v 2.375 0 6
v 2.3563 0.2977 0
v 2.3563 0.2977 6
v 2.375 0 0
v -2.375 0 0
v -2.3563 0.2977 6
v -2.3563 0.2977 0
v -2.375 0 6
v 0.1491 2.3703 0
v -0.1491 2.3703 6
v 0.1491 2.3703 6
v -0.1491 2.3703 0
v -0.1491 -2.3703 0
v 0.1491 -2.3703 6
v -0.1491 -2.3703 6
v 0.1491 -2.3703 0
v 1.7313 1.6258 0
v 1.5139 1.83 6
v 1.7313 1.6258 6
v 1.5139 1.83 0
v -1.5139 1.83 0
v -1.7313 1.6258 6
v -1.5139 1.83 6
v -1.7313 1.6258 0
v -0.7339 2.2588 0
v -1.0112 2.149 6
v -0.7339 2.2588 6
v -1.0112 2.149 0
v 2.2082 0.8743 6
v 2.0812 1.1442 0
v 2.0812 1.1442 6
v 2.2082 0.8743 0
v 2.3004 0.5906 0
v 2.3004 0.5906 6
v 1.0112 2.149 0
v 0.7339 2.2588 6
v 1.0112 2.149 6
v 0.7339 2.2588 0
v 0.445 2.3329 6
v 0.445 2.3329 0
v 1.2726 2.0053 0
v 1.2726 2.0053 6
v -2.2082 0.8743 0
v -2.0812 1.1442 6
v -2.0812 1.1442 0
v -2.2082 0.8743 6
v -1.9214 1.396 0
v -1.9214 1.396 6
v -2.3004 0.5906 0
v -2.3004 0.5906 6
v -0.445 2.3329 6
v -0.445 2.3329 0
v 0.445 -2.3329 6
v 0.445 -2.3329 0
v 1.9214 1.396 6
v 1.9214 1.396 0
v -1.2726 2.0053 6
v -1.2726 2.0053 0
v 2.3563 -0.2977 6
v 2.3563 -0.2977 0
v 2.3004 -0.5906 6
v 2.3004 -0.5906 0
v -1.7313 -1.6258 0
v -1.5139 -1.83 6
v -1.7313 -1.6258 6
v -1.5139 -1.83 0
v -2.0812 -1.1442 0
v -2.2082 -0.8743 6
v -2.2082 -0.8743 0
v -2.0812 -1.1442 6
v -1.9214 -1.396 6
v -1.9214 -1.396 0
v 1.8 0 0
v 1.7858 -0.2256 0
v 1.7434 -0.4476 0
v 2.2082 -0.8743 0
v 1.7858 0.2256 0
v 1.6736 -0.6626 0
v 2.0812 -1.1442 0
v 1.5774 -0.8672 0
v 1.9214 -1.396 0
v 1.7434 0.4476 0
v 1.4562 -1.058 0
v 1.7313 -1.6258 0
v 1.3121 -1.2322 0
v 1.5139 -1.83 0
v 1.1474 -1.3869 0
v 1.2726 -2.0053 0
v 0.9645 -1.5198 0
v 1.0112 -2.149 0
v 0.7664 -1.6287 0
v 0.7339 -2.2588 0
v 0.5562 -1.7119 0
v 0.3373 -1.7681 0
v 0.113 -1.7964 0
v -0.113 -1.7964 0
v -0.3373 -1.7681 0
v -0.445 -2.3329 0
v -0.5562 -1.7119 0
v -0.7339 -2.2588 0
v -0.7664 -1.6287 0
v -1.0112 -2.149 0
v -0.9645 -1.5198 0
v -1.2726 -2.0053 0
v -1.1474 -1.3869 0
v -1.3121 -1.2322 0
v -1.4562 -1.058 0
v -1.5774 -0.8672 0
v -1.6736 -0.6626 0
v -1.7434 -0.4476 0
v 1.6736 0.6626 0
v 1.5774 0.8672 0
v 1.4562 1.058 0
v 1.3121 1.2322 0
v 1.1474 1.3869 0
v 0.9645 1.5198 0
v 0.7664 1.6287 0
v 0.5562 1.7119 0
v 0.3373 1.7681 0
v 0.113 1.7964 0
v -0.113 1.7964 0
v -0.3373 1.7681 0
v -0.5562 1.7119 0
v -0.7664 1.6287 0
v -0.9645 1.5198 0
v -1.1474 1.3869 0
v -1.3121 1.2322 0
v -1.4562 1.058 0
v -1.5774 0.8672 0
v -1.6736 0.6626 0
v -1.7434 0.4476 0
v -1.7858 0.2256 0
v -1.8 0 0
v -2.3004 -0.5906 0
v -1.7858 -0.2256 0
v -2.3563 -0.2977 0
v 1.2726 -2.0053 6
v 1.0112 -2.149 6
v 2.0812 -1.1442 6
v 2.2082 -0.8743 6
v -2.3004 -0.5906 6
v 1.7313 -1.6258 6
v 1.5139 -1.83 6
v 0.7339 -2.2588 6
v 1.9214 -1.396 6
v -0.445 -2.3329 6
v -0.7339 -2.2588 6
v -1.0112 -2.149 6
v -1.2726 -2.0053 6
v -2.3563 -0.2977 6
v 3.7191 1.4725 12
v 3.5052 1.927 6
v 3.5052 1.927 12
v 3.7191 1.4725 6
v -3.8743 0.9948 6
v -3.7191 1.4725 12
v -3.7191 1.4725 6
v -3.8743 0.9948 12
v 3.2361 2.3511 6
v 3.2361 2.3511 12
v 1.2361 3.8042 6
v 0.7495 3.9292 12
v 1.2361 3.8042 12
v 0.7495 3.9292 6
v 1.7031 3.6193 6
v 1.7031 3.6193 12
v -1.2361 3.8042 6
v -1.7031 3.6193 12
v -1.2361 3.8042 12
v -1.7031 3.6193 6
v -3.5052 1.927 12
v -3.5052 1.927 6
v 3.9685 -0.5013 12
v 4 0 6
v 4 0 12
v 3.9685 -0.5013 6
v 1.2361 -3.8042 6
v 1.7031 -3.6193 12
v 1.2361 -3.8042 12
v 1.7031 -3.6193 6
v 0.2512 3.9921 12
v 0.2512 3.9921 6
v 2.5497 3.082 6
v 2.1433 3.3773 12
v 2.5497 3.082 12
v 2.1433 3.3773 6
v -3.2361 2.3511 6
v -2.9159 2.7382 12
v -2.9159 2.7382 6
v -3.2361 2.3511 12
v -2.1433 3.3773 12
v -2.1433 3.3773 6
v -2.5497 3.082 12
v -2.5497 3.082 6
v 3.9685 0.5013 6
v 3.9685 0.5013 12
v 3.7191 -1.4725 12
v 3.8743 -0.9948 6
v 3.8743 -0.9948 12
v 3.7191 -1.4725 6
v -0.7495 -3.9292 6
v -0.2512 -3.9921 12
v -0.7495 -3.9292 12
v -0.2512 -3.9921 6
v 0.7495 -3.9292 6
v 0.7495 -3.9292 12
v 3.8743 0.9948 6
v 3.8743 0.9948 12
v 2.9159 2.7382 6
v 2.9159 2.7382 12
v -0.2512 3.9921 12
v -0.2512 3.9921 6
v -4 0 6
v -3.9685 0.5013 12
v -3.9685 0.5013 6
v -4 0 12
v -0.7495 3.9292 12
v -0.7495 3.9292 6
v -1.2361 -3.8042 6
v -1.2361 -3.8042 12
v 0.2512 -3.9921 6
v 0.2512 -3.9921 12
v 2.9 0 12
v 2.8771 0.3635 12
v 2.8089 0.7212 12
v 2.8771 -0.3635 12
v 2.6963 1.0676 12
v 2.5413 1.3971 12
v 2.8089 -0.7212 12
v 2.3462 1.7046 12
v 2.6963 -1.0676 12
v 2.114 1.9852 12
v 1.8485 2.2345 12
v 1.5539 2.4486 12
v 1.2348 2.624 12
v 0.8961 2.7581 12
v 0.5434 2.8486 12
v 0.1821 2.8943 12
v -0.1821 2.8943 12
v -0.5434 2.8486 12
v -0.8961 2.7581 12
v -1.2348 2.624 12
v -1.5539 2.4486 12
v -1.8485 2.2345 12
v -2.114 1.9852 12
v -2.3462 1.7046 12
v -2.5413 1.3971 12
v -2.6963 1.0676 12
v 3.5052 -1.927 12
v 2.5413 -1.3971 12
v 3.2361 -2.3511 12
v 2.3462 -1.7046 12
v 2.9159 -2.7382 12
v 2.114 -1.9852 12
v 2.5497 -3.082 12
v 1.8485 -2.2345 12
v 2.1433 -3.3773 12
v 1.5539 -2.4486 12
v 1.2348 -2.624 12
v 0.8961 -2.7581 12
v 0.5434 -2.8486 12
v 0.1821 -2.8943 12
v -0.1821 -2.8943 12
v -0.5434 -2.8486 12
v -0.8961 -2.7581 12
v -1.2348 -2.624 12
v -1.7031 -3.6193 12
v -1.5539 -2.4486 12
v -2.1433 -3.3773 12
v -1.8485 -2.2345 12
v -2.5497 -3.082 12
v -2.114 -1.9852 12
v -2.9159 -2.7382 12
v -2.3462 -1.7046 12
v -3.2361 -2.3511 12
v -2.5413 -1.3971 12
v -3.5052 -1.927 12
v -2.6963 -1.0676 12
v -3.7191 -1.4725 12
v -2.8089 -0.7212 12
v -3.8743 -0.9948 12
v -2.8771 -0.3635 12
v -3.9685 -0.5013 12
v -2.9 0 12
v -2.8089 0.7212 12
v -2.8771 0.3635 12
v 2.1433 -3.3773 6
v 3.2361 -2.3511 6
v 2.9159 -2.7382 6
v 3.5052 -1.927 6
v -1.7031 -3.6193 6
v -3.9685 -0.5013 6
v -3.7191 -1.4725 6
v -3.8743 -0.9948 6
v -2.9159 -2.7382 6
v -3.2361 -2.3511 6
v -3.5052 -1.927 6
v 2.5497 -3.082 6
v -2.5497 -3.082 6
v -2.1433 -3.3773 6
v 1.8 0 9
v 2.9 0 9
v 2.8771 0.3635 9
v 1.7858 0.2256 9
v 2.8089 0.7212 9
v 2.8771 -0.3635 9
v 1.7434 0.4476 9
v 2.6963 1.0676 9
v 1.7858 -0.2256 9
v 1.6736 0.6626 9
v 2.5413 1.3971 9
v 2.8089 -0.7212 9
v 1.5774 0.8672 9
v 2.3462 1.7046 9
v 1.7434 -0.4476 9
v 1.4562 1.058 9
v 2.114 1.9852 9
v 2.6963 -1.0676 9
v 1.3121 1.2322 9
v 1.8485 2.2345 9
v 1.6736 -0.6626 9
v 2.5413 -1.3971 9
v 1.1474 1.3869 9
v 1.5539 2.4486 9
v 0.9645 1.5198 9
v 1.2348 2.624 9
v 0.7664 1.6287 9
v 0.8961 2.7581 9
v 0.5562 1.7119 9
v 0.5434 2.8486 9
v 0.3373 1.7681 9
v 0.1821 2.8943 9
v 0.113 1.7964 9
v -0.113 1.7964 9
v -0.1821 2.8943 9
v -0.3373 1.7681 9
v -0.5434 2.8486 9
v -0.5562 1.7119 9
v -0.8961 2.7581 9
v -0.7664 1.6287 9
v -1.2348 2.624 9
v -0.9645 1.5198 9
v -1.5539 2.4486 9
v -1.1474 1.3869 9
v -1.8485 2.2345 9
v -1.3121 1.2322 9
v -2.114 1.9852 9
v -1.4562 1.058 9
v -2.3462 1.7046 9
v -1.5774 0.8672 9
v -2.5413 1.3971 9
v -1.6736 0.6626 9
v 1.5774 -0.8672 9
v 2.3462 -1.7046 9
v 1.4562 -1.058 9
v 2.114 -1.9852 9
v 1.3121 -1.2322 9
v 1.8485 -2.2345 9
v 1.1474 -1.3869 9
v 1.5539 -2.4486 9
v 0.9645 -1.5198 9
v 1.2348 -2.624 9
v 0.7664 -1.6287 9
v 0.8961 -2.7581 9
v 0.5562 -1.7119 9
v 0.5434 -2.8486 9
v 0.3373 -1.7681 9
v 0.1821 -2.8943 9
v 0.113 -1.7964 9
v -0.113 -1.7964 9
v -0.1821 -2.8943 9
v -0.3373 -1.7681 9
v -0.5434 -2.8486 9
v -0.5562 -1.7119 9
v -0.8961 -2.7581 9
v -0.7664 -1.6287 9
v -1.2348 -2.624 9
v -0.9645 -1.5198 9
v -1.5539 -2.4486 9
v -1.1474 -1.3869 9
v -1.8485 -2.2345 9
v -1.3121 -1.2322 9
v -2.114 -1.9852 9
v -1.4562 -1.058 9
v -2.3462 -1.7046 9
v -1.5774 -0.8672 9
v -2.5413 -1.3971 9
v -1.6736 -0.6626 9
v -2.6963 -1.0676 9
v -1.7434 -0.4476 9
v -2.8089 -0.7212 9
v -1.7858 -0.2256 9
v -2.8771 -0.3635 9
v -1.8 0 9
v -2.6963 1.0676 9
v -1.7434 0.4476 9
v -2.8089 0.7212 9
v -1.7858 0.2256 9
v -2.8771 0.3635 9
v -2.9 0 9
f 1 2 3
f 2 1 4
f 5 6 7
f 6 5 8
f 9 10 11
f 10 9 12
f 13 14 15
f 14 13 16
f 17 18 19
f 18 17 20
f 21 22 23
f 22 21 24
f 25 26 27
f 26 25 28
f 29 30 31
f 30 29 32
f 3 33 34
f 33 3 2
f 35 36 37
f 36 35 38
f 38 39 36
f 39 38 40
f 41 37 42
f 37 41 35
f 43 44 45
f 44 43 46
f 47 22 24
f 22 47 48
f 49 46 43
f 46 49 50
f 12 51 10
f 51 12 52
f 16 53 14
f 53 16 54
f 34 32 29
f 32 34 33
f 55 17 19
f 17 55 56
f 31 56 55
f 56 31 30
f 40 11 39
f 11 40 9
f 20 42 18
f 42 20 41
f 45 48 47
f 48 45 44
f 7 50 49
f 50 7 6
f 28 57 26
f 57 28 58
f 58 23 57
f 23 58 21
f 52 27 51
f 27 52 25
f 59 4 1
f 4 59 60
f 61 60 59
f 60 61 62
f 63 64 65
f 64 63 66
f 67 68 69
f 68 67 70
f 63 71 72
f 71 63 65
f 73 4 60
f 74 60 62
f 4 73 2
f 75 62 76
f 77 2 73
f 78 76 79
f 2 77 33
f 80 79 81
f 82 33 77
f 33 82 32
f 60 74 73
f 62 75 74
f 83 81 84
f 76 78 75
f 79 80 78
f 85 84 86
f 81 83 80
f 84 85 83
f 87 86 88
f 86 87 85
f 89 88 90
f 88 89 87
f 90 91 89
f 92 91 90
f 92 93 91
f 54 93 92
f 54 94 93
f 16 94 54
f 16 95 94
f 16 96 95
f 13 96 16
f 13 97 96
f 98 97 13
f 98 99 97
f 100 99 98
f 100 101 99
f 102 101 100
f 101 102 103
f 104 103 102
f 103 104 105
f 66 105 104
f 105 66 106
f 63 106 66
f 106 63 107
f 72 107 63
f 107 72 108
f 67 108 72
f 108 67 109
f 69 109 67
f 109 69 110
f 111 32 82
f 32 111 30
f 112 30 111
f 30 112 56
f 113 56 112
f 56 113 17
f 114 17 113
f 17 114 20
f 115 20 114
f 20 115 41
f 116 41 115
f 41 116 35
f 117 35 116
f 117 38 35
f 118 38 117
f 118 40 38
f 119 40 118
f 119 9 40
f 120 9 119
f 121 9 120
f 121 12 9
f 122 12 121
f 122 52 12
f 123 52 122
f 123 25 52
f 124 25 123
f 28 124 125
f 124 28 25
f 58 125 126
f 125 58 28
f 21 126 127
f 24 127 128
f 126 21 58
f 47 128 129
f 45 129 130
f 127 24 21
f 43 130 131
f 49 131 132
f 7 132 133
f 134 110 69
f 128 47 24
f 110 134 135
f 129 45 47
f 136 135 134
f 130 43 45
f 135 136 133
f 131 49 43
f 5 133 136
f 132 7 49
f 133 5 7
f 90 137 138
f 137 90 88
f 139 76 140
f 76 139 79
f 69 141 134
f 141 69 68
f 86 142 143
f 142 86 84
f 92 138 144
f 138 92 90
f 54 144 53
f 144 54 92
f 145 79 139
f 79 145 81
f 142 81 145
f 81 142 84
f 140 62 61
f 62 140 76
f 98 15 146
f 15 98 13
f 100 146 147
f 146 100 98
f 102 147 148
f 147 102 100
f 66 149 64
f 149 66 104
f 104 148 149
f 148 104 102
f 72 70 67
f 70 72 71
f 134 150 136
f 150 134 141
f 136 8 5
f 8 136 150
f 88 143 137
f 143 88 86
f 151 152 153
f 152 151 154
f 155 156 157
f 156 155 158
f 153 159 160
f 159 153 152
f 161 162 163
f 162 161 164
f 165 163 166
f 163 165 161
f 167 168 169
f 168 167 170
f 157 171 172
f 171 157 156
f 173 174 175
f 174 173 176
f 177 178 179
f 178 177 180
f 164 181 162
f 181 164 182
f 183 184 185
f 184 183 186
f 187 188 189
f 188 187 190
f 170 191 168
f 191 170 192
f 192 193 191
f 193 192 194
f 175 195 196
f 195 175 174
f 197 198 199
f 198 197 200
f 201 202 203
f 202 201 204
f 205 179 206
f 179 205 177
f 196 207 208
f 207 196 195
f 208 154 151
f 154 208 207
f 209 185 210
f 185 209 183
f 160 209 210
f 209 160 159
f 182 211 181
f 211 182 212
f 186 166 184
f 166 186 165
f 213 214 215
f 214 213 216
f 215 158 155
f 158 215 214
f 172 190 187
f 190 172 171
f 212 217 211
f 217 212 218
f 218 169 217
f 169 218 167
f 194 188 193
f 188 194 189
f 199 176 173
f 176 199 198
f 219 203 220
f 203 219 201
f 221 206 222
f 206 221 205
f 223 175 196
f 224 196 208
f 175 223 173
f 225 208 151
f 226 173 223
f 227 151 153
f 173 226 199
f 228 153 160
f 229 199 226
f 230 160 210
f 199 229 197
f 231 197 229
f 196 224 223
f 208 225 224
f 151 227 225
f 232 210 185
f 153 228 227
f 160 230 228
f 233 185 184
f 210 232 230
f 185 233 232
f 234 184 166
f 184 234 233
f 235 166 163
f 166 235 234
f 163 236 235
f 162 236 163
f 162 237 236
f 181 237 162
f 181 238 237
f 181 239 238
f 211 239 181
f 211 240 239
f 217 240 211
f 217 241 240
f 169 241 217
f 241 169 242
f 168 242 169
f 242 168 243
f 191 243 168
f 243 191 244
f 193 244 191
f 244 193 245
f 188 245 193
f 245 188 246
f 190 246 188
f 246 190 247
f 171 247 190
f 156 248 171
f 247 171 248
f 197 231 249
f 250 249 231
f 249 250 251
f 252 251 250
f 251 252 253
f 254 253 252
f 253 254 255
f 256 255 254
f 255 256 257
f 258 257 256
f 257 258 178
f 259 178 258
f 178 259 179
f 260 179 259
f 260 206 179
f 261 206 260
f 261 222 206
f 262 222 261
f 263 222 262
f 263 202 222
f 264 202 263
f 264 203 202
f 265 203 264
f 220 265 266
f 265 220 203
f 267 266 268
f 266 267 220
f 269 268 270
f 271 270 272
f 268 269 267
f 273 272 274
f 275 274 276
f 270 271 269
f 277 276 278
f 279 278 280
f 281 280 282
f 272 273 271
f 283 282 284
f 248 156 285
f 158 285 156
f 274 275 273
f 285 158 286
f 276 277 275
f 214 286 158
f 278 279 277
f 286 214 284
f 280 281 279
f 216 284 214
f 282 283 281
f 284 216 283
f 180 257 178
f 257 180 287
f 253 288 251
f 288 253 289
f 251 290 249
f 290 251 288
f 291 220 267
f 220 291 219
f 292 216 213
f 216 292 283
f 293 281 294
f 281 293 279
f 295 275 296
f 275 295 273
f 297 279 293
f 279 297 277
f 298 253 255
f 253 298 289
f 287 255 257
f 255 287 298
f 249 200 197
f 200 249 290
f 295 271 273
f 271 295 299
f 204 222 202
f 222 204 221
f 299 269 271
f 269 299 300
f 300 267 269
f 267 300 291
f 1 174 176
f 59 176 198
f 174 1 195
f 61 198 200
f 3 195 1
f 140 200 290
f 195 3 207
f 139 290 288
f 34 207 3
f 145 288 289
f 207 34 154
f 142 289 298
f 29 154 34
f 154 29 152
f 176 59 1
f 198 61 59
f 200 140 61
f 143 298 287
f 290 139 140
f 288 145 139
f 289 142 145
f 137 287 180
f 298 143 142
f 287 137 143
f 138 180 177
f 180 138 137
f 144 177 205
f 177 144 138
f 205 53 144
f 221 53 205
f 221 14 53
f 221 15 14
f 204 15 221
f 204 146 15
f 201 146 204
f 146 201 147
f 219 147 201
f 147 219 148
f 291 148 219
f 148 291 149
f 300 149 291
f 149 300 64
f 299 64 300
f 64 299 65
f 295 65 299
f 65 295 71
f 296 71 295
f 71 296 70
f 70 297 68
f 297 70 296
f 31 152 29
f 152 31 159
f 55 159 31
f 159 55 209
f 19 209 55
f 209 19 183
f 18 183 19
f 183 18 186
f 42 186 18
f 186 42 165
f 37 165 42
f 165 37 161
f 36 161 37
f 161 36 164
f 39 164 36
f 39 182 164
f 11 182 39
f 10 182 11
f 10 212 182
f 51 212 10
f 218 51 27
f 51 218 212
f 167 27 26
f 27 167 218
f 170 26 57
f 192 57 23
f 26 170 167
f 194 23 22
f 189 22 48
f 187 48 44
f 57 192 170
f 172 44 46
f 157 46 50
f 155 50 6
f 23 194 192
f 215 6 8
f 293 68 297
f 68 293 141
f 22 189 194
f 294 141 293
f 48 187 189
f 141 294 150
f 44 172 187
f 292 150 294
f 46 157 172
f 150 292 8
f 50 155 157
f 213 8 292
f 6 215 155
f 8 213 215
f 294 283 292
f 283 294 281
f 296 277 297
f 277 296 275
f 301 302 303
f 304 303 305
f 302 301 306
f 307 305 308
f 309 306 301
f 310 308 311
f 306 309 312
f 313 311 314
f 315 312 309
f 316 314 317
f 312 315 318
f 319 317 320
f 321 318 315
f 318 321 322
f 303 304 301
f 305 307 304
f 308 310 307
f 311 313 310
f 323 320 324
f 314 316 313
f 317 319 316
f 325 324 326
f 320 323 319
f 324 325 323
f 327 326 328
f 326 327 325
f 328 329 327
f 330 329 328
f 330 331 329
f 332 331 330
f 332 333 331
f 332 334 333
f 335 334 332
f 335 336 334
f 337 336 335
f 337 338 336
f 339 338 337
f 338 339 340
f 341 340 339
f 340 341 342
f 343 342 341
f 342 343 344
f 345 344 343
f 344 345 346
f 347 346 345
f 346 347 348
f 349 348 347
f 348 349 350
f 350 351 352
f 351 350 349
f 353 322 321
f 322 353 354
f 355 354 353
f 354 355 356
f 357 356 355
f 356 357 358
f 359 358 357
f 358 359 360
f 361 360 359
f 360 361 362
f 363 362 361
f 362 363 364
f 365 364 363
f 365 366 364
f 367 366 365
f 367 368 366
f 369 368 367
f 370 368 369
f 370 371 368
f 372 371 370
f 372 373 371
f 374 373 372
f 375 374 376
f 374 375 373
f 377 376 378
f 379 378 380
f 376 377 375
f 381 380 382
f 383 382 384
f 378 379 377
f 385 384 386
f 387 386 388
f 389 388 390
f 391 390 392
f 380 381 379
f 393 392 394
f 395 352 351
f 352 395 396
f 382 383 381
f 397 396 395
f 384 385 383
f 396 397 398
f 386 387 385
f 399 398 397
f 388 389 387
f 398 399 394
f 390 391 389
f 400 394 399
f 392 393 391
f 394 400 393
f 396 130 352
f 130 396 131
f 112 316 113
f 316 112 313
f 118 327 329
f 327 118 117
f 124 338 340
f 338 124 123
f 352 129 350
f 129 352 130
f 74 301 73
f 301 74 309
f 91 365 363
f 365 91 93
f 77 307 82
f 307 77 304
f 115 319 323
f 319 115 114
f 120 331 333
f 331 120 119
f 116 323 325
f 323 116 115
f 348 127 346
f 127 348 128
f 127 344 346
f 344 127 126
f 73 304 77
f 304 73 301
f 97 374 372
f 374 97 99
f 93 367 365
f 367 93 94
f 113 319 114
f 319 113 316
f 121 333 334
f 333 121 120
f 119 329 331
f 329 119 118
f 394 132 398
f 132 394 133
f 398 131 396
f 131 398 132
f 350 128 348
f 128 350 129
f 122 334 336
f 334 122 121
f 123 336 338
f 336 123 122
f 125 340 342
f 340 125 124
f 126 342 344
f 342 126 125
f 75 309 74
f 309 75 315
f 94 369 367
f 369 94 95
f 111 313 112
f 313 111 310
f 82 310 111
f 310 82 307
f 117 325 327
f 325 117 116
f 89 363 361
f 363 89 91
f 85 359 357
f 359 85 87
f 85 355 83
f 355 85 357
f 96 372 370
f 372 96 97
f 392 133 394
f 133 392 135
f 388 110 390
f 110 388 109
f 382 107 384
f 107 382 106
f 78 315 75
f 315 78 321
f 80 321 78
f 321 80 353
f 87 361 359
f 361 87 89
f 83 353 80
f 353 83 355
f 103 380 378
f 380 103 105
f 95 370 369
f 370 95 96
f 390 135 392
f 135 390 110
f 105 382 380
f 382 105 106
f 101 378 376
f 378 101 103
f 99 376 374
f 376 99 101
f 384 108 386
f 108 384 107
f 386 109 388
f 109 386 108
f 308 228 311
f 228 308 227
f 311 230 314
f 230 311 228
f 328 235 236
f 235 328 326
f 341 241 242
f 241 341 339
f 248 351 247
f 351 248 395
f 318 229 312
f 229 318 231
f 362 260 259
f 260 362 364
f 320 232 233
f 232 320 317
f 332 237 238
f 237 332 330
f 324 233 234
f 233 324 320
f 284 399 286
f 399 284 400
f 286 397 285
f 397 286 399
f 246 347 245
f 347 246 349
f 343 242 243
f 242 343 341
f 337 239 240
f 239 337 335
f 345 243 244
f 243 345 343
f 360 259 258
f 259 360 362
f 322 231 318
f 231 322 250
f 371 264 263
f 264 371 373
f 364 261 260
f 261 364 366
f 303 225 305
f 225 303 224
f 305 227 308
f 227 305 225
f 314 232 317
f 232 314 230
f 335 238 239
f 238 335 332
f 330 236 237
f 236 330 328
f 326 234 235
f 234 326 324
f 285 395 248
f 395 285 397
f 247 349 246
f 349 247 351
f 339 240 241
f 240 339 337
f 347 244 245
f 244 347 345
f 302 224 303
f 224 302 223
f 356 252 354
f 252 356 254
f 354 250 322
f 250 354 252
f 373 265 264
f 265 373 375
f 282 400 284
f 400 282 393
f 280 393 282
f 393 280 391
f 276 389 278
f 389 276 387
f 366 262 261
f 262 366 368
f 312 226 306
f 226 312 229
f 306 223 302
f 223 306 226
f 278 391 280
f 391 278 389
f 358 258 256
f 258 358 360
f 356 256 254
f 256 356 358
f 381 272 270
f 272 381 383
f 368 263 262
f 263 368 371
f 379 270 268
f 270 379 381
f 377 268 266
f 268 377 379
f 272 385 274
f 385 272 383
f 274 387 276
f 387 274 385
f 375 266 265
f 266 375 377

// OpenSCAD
$fn = 50;


difference() {
	union() {
		cylinder(h = 9, r = 2.3750000000);
		translate(v = [0, 0, 6.0000000000]) {
			cylinder(h = 6, r = 4.0000000000);
		}
	}
	union() {
		translate(v = [0, 0, 9]) {
			rotate(a = [0, 0, 0]) {
				difference() {
					union() {
						translate(v = [0, 0, -12.0000000000]) {
							rotate(a = [0, 0, 0]) {
								difference() {
									union() {
										#linear_extrude(height = 2.5000000000) {
											polygon(points = [[3.1735000000, 0.0000000000], [1.5867500000, 2.7483316189], [-1.5867500000, 2.7483316189], [-3.1735000000, 0.0000000000], [-1.5867500000, -2.7483316189], [1.5867500000, -2.7483316189]]);
										}
									}
									union();
								}
							}
						}
						translate(v = [0, 0, -12.0000000000]) {
							rotate(a = [0, 0, 0]) {
								difference() {
									union() {
										#linear_extrude(height = 2.5000000000) {
											polygon(points = [[3.1735000000, 0.0000000000], [1.5867500000, 2.7483316189], [-1.5867500000, 2.7483316189], [-3.1735000000, 0.0000000000], [-1.5867500000, -2.7483316189], [1.5867500000, -2.7483316189]]);
										}
									}
									union();
								}
							}
						}
						translate(v = [0, 0, -12.0000000000]) {
							rotate(a = [0, 0, 0]) {
								difference() {
									union() {
										#linear_extrude(height = 2.5000000000) {
											polygon(points = [[3.1735000000, 0.0000000000], [1.5867500000, 2.7483316189], [-1.5867500000, 2.7483316189], [-3.1735000000, 0.0000000000], [-1.5867500000, -2.7483316189], [1.5867500000, -2.7483316189]]);
										}
									}
									union();
								}
							}
						}
						#translate(v = [0, 0, -12.0000000000]) {
							cylinder(h = 12, r = 1.5000000000);
						}
						#translate(v = [0, 0, -12.0000000000]) {
							cylinder(h = 12, r = 1.8000000000);
						}
						#cylinder(h = 3, r = 2.9000000000);
						#translate(v = [0, 0, -12.0000000000]) {
							cylinder(h = 12, r = 1.5000000000);
						}
					}
					union();
				}
			}
		}
		translate(v = [0, 0, -100.0000000000]) {
			cylinder(h = 200, r = 1.5000000000);
		}
	}
}
